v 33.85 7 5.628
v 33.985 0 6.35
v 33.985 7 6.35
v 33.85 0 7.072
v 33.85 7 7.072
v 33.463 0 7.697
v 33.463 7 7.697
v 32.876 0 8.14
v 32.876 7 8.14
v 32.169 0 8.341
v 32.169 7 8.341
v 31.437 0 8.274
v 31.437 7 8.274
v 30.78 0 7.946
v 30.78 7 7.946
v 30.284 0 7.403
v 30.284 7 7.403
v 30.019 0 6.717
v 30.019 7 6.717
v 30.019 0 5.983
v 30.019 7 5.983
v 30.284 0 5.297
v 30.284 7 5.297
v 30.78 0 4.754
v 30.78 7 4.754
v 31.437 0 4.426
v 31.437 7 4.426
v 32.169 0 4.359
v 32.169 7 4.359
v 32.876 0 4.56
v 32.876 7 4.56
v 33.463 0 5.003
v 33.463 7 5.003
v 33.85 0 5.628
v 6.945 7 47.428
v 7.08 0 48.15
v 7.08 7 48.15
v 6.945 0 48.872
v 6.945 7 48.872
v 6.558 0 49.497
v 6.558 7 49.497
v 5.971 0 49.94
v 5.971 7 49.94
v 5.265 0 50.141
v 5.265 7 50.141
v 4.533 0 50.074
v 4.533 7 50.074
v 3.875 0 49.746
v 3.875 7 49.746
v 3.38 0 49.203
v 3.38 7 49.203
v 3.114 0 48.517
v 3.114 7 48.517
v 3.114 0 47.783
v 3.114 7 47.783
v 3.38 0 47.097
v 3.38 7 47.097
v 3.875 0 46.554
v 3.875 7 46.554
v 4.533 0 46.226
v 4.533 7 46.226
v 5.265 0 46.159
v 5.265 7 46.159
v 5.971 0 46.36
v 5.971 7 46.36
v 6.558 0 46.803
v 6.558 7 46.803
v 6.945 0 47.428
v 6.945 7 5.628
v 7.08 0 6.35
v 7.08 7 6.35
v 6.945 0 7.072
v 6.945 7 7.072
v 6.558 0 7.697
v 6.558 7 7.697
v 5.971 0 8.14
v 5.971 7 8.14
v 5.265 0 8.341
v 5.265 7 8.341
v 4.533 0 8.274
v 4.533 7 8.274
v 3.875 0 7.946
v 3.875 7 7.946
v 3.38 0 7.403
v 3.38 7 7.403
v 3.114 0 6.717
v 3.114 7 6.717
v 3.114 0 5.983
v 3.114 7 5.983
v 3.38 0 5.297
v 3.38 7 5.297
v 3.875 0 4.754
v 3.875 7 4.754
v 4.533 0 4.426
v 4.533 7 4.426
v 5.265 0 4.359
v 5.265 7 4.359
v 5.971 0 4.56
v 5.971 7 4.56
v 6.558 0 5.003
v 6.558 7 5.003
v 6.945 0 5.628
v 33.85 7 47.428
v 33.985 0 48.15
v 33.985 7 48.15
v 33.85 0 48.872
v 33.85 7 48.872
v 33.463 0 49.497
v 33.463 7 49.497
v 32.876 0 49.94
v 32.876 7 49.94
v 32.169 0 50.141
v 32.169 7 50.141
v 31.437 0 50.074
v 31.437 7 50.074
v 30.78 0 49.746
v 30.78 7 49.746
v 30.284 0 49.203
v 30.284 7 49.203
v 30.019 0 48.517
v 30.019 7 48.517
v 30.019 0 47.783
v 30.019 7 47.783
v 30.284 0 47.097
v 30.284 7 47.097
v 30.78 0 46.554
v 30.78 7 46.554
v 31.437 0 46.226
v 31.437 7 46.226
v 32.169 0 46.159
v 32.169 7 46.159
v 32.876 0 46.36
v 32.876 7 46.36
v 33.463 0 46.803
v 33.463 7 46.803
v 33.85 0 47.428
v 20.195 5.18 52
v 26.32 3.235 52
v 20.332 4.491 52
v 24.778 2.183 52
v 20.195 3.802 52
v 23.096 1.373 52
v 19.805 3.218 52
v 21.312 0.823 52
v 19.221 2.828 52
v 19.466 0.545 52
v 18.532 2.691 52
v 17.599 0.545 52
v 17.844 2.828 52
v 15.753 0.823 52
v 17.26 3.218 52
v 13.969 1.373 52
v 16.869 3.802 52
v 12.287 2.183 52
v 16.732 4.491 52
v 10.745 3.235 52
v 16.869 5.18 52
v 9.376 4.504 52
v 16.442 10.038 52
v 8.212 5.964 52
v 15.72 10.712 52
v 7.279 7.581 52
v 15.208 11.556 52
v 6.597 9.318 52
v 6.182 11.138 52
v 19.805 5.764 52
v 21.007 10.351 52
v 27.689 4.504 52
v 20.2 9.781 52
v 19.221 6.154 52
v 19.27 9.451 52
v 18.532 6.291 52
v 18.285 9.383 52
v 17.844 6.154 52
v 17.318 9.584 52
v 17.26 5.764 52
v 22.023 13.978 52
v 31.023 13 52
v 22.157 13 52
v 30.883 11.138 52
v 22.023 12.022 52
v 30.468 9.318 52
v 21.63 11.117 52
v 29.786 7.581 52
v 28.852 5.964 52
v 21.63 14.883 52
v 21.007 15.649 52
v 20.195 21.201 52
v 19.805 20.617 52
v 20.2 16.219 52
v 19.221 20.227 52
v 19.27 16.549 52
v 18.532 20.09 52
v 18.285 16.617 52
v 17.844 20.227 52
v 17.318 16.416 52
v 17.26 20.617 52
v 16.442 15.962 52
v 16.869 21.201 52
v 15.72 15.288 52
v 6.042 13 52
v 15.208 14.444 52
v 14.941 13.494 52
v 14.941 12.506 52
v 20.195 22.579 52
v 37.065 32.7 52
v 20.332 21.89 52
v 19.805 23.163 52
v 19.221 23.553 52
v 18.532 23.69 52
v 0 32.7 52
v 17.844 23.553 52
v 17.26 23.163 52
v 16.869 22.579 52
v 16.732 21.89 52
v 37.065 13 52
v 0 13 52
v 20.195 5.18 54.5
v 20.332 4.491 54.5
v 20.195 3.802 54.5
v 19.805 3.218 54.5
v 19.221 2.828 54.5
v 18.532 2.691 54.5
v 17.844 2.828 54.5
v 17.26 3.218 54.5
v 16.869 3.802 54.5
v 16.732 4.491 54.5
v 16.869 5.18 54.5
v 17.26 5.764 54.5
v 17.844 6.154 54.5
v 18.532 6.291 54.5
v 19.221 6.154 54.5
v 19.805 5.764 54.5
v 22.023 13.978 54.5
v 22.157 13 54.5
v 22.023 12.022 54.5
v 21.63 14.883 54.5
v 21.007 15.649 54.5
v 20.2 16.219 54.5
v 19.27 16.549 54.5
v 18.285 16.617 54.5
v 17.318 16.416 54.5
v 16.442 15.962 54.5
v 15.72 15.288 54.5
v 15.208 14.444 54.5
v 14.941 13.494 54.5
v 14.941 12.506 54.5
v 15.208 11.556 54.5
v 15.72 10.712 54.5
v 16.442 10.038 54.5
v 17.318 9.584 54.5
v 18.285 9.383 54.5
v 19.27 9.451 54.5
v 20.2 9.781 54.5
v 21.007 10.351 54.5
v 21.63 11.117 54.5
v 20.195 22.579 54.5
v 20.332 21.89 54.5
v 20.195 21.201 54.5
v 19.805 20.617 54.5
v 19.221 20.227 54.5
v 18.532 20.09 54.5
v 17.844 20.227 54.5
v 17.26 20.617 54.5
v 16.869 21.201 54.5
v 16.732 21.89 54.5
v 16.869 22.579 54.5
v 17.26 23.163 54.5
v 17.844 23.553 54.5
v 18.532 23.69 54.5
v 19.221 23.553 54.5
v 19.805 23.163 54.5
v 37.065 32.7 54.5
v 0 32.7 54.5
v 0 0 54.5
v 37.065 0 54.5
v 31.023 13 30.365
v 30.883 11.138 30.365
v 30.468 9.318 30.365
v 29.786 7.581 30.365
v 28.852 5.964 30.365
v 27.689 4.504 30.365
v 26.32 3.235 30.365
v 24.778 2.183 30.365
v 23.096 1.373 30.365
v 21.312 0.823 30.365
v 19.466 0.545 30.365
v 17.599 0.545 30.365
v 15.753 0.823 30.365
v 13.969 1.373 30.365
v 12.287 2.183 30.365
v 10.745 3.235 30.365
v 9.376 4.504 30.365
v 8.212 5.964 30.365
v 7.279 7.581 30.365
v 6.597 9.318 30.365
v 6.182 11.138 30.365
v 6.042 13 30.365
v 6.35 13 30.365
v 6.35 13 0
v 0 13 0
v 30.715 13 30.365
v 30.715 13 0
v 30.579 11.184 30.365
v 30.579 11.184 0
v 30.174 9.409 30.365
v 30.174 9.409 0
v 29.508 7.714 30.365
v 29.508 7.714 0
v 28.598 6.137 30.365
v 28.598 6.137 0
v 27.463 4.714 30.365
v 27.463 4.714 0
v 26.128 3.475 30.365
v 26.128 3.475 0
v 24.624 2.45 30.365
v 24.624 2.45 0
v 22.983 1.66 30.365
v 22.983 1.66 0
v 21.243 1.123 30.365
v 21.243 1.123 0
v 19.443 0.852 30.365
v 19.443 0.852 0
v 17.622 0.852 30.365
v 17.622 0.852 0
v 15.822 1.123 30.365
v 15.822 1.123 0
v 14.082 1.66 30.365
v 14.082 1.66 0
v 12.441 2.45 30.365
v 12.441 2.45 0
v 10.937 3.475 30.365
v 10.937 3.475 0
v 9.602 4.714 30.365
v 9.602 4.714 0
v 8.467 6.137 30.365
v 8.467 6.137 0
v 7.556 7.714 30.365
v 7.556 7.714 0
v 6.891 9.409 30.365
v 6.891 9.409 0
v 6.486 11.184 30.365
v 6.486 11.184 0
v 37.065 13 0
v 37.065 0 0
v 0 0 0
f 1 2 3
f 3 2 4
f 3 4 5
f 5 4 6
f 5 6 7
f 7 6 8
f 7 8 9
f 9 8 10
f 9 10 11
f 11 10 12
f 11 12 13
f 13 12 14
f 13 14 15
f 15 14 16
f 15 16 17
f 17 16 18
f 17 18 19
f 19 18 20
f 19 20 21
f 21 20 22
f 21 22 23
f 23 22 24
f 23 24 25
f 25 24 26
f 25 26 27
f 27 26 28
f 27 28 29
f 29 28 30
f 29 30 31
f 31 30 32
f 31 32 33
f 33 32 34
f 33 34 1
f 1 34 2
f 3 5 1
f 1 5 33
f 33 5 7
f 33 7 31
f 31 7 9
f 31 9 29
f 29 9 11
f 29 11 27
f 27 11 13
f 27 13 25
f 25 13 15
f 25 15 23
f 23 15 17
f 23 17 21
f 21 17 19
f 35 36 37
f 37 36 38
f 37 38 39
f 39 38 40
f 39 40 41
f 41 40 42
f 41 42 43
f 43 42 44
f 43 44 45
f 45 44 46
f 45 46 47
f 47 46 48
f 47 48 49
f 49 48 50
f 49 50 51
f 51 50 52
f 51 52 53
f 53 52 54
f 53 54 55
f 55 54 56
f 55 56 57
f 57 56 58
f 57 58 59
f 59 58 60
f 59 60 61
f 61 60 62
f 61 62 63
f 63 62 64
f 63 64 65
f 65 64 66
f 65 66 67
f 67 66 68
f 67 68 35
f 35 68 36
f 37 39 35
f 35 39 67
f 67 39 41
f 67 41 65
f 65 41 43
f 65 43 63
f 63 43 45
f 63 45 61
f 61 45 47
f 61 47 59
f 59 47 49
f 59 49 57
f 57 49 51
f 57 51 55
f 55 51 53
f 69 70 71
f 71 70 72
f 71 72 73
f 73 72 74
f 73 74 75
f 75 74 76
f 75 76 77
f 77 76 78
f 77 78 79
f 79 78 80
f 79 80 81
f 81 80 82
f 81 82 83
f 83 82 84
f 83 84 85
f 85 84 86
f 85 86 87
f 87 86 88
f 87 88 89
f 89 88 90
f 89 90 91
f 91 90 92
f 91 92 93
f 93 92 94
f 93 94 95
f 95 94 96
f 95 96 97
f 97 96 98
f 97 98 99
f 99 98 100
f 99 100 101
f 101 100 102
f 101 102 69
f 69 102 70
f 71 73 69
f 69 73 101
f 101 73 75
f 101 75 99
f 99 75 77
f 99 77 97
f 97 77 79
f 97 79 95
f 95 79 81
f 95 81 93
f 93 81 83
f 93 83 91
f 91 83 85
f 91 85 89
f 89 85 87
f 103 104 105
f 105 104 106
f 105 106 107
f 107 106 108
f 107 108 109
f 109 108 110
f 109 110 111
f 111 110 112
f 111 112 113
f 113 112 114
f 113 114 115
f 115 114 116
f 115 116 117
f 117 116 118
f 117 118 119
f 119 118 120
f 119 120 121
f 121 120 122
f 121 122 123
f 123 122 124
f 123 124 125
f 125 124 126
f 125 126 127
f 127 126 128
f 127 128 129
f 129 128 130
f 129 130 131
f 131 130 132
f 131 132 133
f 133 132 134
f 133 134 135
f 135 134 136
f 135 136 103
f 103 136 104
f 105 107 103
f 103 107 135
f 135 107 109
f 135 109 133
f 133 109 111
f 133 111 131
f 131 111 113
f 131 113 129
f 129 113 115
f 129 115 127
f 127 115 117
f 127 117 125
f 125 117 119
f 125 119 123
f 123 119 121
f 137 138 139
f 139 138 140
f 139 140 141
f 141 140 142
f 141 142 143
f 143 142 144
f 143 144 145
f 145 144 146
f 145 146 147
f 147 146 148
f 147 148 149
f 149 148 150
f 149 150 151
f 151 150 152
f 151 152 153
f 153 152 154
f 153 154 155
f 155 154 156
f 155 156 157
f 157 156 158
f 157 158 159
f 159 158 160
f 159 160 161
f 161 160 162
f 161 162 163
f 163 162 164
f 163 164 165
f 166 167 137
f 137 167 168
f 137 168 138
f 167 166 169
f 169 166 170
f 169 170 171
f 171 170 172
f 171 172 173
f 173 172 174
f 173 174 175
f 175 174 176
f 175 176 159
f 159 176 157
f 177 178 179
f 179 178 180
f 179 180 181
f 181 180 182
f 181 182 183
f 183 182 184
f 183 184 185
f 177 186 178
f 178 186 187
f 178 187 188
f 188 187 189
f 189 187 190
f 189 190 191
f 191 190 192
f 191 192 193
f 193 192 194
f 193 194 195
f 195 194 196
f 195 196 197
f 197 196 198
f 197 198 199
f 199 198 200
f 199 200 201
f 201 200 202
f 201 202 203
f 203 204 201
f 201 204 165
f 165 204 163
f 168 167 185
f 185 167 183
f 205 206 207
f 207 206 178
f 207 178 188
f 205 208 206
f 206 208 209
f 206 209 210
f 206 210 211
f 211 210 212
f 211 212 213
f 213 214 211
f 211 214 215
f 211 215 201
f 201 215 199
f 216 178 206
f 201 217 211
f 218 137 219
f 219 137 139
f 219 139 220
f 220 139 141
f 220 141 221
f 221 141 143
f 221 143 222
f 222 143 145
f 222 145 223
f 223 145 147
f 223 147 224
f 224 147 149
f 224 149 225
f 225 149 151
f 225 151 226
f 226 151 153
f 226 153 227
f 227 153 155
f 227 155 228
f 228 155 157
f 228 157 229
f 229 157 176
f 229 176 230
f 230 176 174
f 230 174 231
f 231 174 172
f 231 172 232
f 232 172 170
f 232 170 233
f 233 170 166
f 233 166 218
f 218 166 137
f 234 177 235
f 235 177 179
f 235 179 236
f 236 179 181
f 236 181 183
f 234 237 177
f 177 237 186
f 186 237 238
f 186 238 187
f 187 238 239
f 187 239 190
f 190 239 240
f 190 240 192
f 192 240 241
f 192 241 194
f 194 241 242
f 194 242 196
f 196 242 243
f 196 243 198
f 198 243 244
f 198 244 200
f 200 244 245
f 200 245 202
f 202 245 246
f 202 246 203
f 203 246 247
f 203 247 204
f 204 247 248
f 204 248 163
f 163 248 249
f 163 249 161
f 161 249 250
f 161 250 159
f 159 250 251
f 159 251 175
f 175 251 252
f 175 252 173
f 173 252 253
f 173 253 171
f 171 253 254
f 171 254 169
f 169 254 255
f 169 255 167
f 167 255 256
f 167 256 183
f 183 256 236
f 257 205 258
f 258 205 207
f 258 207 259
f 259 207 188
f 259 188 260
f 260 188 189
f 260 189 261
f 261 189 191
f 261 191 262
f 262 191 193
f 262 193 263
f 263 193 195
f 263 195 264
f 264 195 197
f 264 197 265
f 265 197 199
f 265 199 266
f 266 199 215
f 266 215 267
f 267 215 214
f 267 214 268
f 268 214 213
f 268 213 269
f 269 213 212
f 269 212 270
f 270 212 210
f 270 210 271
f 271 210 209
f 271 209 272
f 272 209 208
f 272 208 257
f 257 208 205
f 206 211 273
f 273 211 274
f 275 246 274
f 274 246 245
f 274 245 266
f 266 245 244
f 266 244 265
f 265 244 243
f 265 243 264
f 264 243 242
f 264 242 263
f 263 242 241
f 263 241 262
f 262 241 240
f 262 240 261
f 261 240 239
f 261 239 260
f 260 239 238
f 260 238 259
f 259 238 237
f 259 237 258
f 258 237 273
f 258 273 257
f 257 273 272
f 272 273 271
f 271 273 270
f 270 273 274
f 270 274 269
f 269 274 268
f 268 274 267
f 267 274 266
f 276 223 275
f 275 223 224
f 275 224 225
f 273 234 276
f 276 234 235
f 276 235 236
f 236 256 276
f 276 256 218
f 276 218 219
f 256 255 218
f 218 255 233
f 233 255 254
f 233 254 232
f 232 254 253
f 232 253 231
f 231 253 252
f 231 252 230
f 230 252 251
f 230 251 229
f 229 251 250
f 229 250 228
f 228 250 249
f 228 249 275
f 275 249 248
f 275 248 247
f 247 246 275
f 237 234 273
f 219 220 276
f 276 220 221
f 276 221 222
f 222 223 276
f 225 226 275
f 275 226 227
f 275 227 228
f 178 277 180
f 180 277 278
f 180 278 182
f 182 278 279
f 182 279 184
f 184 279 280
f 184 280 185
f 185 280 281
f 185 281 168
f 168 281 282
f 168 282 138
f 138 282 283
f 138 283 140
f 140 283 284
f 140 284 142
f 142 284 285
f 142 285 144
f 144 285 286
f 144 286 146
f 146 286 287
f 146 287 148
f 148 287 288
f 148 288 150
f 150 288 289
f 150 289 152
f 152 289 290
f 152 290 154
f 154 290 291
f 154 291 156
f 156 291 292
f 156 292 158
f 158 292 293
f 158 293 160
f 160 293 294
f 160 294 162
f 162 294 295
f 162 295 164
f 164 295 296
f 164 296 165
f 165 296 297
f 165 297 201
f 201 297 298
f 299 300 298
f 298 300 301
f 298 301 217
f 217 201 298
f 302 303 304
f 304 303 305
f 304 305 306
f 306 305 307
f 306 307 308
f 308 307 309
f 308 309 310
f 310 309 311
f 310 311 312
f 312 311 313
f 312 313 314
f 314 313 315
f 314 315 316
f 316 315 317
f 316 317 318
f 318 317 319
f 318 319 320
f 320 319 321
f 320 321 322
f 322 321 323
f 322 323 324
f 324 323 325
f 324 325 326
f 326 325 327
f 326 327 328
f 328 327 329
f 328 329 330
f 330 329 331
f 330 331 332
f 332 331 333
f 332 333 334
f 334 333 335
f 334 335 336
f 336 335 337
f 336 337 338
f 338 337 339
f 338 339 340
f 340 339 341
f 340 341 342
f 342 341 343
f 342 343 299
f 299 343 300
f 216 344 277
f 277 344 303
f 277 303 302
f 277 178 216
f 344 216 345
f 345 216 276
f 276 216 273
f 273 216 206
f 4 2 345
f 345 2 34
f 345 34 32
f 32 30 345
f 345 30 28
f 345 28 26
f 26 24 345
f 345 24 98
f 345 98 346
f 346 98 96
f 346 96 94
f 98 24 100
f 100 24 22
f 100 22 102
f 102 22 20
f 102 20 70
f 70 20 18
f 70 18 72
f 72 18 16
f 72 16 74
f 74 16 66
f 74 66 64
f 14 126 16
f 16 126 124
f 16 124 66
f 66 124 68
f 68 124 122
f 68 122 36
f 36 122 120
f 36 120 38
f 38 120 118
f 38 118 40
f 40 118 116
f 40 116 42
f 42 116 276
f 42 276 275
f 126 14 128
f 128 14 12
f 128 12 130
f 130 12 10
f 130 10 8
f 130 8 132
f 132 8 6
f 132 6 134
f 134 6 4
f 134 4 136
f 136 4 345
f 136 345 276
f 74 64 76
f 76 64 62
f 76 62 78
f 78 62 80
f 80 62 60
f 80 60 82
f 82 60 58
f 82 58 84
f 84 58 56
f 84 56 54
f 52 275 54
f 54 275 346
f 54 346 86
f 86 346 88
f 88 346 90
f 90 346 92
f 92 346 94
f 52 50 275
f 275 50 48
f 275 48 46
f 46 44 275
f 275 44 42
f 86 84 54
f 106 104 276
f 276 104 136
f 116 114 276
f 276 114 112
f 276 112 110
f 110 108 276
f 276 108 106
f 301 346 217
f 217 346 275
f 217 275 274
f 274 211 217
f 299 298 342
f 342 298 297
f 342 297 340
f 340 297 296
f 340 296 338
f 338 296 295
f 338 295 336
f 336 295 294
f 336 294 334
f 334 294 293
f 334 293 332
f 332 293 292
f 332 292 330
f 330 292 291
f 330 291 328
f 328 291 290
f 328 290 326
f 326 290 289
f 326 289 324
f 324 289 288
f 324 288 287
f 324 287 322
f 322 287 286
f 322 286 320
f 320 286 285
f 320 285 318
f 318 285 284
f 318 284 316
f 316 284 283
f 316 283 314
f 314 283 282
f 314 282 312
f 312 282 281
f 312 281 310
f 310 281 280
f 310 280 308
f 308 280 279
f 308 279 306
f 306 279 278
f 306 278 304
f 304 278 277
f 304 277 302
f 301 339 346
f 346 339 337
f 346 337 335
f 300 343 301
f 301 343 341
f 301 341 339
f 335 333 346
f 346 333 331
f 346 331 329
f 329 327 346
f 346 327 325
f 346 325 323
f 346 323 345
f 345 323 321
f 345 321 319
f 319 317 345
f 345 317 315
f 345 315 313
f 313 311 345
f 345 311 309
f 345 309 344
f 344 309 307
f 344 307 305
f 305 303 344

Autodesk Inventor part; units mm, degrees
ref_plane "YZ Plane" through (0, 0, 0) normal (1, 0, 0) x (0, 1, 0)
ref_plane "XZ Plane" through (0, 0, 0) normal (0, 1, 0) x (-1, 0, 0)
ref_plane "XY Plane" through (0, 0, 0) normal (0, 0, 1) x (1, 0, 0)
sketch "Sketch1" plane through (0, 0, 0) normal (0, 0, 1) x (1, 0, 0)
  line L0 (0, 0) -> (37.0648, 0)
  line L1 (37.0648, 0) -> (37.0648, 13)
  line L2 (0, 0) -> (0, 13)
  line L3 (0, 13) -> (6.35, 13)
  line L4 (37.0648, 13) -> (30.7148, 13)
  line L5 (18.5324, 0) -> (18.5324, 24.6661)
  line L6 (6.35, 13) -> (30.7148, 13) construction
  arc A0 (6.35, 13) -> (30.7148, 13) centre (18.5324, 13) ccw
  dimension "d0" = 37.0648
  dimension "d1" = 13
  dimension "d2" = 13
  dimension "d3" = 6.35
  dimension "d4" = 6.35
  dimension "d5" = 12.1824
  dimension "d6" = 13
extrude "Extrusion1" add sketch "Sketch1" along normal blind 30.365
sketch "Sketch2" plane through (0, 0, 30.365) normal (0, 0, 1) x (1, 0, 0)
  line L0 (0, 13) -> (0, 0) projected
  line L1 (0, 0) -> (37.0648, 0) projected
  line L2 (0, 0) -> (37.0648, 0)
  line L3 (37.0648, 0) -> (37.0648, 13)
  line L4 (0, 0) -> (0, 13)
  line L5 (0, 13) -> (6.042, 13)
  arc A0 (6.35, 13) -> (30.7148, 13) centre (18.5324, 13) ccw projected
  line L6 (6.35, 13) -> (30.7148, 13) construction
  line L7 (18.5324, 0) -> (18.5324, 13)
  line L8 (37.0648, 13) -> (31.0228, 13)
  arc A1 (6.042, 13) -> (31.0228, 13) centre (18.5324, 13) ccw
  point P0 (0, 13)
  point P1 (37.0648, 13)
  dimension "d9" = 13
  dimension "d10" = 13
  dimension "d11" = 6.042
  dimension "d13" = 37.0648
  dimension "d15" = 6.042
  dimension "d16" = 12.4904
extrude "Extrusion2" add sketch "Sketch2" along normal blind 21.635
sketch "Sketch3" plane through (0, 0, 52) normal (0, 0, 1) x (1, 0, 0)
  line L0 (0, 0) -> (37.0648, 0)
  line L1 (0, 0) -> (37.0648, 0)
  line L2 (37.0648, 0) -> (37.0648, 32.7)
  line L3 (37.0648, 32.7) -> (0, 32.7)
  line L4 (0, 32.7) -> (0, 0)
  line L5 (18.5324, 32.7) -> (18.5324, 0)
  line L6 (0, 0) -> (37.0648, 0) projected
  circle A0 centre (18.5324, 21.89) radius 1.8
  circle A1 centre (18.5324, 13) radius 3.625
  circle A2 centre (18.5324, 4.491) radius 1.8
  dimension "d19" = 37.0648
  dimension "d20" = 32.7
  dimension "d21" = 7.25
  dimension "d22" = 3.6
  dimension "d23" = 3.6
  dimension "d24" = 13
  dimension "d25" = 8.509
  dimension "d26" = 8.89
extrude "Extrusion3" add sketch "Sketch3" along normal blind 2.5 contours L4 L3 L5 A0 A1 A2 L0 | L5 A2 A1 A0 L3 L2 L0
sketch "Sketch4" plane through (0, 0, 0) normal (0, -1, 0) x (1, 0, 0)
  circle A0 centre (31.9848, 48.15) radius 2
  circle A1 centre (5.08, 48.15) radius 2
  circle A2 centre (31.9848, 6.35) radius 2
  circle A3 centre (5.08, 6.35) radius 2
  line L0 (0, 54.5) -> (37.0648, 54.5) projected
  line L1 (37.0648, 0) -> (37.0648, 54.5) projected
  line L2 (0, 0) -> (37.0648, 0) projected
  line L3 (0, 0) -> (0, 54.5) projected
  dimension "d29" = 4
  dimension "d30" = 4
  dimension "d32" = 4
  dimension "d33" = 4
  dimension "d34" = 6.35
  dimension "d35" = 5.08
  dimension "d36" = 5.08
  dimension "d37" = 6.35
  dimension "d38" = 6.35
  dimension "d39" = 5.08
  dimension "d40" = 6.35
  dimension "d41" = 5.08
  dimension "d42" = 26.9048
  dimension "d43" = 41.8
extrude "Extrusion4" cut sketch "Sketch4" against normal blind 7 contours A0 | A1 | A2 | A3
equation "\"d1\" = motor_centerline_height"
equation "\"d2\" = d1"
equation "\"d24\" = motor_centerline_height"
equation "\"m3_heat_set_insert\" = 4"
equation "\"m3_clearance\" = 3.4"
equation "\"m3_heat_set_depth\" = 7"
equation "\"robot_diameter\" = 354"
equation "\"hardboard_thickness\" = 5"
equation "\"motor_centerline_height\" = 13"
properties part number "motor_holder"
